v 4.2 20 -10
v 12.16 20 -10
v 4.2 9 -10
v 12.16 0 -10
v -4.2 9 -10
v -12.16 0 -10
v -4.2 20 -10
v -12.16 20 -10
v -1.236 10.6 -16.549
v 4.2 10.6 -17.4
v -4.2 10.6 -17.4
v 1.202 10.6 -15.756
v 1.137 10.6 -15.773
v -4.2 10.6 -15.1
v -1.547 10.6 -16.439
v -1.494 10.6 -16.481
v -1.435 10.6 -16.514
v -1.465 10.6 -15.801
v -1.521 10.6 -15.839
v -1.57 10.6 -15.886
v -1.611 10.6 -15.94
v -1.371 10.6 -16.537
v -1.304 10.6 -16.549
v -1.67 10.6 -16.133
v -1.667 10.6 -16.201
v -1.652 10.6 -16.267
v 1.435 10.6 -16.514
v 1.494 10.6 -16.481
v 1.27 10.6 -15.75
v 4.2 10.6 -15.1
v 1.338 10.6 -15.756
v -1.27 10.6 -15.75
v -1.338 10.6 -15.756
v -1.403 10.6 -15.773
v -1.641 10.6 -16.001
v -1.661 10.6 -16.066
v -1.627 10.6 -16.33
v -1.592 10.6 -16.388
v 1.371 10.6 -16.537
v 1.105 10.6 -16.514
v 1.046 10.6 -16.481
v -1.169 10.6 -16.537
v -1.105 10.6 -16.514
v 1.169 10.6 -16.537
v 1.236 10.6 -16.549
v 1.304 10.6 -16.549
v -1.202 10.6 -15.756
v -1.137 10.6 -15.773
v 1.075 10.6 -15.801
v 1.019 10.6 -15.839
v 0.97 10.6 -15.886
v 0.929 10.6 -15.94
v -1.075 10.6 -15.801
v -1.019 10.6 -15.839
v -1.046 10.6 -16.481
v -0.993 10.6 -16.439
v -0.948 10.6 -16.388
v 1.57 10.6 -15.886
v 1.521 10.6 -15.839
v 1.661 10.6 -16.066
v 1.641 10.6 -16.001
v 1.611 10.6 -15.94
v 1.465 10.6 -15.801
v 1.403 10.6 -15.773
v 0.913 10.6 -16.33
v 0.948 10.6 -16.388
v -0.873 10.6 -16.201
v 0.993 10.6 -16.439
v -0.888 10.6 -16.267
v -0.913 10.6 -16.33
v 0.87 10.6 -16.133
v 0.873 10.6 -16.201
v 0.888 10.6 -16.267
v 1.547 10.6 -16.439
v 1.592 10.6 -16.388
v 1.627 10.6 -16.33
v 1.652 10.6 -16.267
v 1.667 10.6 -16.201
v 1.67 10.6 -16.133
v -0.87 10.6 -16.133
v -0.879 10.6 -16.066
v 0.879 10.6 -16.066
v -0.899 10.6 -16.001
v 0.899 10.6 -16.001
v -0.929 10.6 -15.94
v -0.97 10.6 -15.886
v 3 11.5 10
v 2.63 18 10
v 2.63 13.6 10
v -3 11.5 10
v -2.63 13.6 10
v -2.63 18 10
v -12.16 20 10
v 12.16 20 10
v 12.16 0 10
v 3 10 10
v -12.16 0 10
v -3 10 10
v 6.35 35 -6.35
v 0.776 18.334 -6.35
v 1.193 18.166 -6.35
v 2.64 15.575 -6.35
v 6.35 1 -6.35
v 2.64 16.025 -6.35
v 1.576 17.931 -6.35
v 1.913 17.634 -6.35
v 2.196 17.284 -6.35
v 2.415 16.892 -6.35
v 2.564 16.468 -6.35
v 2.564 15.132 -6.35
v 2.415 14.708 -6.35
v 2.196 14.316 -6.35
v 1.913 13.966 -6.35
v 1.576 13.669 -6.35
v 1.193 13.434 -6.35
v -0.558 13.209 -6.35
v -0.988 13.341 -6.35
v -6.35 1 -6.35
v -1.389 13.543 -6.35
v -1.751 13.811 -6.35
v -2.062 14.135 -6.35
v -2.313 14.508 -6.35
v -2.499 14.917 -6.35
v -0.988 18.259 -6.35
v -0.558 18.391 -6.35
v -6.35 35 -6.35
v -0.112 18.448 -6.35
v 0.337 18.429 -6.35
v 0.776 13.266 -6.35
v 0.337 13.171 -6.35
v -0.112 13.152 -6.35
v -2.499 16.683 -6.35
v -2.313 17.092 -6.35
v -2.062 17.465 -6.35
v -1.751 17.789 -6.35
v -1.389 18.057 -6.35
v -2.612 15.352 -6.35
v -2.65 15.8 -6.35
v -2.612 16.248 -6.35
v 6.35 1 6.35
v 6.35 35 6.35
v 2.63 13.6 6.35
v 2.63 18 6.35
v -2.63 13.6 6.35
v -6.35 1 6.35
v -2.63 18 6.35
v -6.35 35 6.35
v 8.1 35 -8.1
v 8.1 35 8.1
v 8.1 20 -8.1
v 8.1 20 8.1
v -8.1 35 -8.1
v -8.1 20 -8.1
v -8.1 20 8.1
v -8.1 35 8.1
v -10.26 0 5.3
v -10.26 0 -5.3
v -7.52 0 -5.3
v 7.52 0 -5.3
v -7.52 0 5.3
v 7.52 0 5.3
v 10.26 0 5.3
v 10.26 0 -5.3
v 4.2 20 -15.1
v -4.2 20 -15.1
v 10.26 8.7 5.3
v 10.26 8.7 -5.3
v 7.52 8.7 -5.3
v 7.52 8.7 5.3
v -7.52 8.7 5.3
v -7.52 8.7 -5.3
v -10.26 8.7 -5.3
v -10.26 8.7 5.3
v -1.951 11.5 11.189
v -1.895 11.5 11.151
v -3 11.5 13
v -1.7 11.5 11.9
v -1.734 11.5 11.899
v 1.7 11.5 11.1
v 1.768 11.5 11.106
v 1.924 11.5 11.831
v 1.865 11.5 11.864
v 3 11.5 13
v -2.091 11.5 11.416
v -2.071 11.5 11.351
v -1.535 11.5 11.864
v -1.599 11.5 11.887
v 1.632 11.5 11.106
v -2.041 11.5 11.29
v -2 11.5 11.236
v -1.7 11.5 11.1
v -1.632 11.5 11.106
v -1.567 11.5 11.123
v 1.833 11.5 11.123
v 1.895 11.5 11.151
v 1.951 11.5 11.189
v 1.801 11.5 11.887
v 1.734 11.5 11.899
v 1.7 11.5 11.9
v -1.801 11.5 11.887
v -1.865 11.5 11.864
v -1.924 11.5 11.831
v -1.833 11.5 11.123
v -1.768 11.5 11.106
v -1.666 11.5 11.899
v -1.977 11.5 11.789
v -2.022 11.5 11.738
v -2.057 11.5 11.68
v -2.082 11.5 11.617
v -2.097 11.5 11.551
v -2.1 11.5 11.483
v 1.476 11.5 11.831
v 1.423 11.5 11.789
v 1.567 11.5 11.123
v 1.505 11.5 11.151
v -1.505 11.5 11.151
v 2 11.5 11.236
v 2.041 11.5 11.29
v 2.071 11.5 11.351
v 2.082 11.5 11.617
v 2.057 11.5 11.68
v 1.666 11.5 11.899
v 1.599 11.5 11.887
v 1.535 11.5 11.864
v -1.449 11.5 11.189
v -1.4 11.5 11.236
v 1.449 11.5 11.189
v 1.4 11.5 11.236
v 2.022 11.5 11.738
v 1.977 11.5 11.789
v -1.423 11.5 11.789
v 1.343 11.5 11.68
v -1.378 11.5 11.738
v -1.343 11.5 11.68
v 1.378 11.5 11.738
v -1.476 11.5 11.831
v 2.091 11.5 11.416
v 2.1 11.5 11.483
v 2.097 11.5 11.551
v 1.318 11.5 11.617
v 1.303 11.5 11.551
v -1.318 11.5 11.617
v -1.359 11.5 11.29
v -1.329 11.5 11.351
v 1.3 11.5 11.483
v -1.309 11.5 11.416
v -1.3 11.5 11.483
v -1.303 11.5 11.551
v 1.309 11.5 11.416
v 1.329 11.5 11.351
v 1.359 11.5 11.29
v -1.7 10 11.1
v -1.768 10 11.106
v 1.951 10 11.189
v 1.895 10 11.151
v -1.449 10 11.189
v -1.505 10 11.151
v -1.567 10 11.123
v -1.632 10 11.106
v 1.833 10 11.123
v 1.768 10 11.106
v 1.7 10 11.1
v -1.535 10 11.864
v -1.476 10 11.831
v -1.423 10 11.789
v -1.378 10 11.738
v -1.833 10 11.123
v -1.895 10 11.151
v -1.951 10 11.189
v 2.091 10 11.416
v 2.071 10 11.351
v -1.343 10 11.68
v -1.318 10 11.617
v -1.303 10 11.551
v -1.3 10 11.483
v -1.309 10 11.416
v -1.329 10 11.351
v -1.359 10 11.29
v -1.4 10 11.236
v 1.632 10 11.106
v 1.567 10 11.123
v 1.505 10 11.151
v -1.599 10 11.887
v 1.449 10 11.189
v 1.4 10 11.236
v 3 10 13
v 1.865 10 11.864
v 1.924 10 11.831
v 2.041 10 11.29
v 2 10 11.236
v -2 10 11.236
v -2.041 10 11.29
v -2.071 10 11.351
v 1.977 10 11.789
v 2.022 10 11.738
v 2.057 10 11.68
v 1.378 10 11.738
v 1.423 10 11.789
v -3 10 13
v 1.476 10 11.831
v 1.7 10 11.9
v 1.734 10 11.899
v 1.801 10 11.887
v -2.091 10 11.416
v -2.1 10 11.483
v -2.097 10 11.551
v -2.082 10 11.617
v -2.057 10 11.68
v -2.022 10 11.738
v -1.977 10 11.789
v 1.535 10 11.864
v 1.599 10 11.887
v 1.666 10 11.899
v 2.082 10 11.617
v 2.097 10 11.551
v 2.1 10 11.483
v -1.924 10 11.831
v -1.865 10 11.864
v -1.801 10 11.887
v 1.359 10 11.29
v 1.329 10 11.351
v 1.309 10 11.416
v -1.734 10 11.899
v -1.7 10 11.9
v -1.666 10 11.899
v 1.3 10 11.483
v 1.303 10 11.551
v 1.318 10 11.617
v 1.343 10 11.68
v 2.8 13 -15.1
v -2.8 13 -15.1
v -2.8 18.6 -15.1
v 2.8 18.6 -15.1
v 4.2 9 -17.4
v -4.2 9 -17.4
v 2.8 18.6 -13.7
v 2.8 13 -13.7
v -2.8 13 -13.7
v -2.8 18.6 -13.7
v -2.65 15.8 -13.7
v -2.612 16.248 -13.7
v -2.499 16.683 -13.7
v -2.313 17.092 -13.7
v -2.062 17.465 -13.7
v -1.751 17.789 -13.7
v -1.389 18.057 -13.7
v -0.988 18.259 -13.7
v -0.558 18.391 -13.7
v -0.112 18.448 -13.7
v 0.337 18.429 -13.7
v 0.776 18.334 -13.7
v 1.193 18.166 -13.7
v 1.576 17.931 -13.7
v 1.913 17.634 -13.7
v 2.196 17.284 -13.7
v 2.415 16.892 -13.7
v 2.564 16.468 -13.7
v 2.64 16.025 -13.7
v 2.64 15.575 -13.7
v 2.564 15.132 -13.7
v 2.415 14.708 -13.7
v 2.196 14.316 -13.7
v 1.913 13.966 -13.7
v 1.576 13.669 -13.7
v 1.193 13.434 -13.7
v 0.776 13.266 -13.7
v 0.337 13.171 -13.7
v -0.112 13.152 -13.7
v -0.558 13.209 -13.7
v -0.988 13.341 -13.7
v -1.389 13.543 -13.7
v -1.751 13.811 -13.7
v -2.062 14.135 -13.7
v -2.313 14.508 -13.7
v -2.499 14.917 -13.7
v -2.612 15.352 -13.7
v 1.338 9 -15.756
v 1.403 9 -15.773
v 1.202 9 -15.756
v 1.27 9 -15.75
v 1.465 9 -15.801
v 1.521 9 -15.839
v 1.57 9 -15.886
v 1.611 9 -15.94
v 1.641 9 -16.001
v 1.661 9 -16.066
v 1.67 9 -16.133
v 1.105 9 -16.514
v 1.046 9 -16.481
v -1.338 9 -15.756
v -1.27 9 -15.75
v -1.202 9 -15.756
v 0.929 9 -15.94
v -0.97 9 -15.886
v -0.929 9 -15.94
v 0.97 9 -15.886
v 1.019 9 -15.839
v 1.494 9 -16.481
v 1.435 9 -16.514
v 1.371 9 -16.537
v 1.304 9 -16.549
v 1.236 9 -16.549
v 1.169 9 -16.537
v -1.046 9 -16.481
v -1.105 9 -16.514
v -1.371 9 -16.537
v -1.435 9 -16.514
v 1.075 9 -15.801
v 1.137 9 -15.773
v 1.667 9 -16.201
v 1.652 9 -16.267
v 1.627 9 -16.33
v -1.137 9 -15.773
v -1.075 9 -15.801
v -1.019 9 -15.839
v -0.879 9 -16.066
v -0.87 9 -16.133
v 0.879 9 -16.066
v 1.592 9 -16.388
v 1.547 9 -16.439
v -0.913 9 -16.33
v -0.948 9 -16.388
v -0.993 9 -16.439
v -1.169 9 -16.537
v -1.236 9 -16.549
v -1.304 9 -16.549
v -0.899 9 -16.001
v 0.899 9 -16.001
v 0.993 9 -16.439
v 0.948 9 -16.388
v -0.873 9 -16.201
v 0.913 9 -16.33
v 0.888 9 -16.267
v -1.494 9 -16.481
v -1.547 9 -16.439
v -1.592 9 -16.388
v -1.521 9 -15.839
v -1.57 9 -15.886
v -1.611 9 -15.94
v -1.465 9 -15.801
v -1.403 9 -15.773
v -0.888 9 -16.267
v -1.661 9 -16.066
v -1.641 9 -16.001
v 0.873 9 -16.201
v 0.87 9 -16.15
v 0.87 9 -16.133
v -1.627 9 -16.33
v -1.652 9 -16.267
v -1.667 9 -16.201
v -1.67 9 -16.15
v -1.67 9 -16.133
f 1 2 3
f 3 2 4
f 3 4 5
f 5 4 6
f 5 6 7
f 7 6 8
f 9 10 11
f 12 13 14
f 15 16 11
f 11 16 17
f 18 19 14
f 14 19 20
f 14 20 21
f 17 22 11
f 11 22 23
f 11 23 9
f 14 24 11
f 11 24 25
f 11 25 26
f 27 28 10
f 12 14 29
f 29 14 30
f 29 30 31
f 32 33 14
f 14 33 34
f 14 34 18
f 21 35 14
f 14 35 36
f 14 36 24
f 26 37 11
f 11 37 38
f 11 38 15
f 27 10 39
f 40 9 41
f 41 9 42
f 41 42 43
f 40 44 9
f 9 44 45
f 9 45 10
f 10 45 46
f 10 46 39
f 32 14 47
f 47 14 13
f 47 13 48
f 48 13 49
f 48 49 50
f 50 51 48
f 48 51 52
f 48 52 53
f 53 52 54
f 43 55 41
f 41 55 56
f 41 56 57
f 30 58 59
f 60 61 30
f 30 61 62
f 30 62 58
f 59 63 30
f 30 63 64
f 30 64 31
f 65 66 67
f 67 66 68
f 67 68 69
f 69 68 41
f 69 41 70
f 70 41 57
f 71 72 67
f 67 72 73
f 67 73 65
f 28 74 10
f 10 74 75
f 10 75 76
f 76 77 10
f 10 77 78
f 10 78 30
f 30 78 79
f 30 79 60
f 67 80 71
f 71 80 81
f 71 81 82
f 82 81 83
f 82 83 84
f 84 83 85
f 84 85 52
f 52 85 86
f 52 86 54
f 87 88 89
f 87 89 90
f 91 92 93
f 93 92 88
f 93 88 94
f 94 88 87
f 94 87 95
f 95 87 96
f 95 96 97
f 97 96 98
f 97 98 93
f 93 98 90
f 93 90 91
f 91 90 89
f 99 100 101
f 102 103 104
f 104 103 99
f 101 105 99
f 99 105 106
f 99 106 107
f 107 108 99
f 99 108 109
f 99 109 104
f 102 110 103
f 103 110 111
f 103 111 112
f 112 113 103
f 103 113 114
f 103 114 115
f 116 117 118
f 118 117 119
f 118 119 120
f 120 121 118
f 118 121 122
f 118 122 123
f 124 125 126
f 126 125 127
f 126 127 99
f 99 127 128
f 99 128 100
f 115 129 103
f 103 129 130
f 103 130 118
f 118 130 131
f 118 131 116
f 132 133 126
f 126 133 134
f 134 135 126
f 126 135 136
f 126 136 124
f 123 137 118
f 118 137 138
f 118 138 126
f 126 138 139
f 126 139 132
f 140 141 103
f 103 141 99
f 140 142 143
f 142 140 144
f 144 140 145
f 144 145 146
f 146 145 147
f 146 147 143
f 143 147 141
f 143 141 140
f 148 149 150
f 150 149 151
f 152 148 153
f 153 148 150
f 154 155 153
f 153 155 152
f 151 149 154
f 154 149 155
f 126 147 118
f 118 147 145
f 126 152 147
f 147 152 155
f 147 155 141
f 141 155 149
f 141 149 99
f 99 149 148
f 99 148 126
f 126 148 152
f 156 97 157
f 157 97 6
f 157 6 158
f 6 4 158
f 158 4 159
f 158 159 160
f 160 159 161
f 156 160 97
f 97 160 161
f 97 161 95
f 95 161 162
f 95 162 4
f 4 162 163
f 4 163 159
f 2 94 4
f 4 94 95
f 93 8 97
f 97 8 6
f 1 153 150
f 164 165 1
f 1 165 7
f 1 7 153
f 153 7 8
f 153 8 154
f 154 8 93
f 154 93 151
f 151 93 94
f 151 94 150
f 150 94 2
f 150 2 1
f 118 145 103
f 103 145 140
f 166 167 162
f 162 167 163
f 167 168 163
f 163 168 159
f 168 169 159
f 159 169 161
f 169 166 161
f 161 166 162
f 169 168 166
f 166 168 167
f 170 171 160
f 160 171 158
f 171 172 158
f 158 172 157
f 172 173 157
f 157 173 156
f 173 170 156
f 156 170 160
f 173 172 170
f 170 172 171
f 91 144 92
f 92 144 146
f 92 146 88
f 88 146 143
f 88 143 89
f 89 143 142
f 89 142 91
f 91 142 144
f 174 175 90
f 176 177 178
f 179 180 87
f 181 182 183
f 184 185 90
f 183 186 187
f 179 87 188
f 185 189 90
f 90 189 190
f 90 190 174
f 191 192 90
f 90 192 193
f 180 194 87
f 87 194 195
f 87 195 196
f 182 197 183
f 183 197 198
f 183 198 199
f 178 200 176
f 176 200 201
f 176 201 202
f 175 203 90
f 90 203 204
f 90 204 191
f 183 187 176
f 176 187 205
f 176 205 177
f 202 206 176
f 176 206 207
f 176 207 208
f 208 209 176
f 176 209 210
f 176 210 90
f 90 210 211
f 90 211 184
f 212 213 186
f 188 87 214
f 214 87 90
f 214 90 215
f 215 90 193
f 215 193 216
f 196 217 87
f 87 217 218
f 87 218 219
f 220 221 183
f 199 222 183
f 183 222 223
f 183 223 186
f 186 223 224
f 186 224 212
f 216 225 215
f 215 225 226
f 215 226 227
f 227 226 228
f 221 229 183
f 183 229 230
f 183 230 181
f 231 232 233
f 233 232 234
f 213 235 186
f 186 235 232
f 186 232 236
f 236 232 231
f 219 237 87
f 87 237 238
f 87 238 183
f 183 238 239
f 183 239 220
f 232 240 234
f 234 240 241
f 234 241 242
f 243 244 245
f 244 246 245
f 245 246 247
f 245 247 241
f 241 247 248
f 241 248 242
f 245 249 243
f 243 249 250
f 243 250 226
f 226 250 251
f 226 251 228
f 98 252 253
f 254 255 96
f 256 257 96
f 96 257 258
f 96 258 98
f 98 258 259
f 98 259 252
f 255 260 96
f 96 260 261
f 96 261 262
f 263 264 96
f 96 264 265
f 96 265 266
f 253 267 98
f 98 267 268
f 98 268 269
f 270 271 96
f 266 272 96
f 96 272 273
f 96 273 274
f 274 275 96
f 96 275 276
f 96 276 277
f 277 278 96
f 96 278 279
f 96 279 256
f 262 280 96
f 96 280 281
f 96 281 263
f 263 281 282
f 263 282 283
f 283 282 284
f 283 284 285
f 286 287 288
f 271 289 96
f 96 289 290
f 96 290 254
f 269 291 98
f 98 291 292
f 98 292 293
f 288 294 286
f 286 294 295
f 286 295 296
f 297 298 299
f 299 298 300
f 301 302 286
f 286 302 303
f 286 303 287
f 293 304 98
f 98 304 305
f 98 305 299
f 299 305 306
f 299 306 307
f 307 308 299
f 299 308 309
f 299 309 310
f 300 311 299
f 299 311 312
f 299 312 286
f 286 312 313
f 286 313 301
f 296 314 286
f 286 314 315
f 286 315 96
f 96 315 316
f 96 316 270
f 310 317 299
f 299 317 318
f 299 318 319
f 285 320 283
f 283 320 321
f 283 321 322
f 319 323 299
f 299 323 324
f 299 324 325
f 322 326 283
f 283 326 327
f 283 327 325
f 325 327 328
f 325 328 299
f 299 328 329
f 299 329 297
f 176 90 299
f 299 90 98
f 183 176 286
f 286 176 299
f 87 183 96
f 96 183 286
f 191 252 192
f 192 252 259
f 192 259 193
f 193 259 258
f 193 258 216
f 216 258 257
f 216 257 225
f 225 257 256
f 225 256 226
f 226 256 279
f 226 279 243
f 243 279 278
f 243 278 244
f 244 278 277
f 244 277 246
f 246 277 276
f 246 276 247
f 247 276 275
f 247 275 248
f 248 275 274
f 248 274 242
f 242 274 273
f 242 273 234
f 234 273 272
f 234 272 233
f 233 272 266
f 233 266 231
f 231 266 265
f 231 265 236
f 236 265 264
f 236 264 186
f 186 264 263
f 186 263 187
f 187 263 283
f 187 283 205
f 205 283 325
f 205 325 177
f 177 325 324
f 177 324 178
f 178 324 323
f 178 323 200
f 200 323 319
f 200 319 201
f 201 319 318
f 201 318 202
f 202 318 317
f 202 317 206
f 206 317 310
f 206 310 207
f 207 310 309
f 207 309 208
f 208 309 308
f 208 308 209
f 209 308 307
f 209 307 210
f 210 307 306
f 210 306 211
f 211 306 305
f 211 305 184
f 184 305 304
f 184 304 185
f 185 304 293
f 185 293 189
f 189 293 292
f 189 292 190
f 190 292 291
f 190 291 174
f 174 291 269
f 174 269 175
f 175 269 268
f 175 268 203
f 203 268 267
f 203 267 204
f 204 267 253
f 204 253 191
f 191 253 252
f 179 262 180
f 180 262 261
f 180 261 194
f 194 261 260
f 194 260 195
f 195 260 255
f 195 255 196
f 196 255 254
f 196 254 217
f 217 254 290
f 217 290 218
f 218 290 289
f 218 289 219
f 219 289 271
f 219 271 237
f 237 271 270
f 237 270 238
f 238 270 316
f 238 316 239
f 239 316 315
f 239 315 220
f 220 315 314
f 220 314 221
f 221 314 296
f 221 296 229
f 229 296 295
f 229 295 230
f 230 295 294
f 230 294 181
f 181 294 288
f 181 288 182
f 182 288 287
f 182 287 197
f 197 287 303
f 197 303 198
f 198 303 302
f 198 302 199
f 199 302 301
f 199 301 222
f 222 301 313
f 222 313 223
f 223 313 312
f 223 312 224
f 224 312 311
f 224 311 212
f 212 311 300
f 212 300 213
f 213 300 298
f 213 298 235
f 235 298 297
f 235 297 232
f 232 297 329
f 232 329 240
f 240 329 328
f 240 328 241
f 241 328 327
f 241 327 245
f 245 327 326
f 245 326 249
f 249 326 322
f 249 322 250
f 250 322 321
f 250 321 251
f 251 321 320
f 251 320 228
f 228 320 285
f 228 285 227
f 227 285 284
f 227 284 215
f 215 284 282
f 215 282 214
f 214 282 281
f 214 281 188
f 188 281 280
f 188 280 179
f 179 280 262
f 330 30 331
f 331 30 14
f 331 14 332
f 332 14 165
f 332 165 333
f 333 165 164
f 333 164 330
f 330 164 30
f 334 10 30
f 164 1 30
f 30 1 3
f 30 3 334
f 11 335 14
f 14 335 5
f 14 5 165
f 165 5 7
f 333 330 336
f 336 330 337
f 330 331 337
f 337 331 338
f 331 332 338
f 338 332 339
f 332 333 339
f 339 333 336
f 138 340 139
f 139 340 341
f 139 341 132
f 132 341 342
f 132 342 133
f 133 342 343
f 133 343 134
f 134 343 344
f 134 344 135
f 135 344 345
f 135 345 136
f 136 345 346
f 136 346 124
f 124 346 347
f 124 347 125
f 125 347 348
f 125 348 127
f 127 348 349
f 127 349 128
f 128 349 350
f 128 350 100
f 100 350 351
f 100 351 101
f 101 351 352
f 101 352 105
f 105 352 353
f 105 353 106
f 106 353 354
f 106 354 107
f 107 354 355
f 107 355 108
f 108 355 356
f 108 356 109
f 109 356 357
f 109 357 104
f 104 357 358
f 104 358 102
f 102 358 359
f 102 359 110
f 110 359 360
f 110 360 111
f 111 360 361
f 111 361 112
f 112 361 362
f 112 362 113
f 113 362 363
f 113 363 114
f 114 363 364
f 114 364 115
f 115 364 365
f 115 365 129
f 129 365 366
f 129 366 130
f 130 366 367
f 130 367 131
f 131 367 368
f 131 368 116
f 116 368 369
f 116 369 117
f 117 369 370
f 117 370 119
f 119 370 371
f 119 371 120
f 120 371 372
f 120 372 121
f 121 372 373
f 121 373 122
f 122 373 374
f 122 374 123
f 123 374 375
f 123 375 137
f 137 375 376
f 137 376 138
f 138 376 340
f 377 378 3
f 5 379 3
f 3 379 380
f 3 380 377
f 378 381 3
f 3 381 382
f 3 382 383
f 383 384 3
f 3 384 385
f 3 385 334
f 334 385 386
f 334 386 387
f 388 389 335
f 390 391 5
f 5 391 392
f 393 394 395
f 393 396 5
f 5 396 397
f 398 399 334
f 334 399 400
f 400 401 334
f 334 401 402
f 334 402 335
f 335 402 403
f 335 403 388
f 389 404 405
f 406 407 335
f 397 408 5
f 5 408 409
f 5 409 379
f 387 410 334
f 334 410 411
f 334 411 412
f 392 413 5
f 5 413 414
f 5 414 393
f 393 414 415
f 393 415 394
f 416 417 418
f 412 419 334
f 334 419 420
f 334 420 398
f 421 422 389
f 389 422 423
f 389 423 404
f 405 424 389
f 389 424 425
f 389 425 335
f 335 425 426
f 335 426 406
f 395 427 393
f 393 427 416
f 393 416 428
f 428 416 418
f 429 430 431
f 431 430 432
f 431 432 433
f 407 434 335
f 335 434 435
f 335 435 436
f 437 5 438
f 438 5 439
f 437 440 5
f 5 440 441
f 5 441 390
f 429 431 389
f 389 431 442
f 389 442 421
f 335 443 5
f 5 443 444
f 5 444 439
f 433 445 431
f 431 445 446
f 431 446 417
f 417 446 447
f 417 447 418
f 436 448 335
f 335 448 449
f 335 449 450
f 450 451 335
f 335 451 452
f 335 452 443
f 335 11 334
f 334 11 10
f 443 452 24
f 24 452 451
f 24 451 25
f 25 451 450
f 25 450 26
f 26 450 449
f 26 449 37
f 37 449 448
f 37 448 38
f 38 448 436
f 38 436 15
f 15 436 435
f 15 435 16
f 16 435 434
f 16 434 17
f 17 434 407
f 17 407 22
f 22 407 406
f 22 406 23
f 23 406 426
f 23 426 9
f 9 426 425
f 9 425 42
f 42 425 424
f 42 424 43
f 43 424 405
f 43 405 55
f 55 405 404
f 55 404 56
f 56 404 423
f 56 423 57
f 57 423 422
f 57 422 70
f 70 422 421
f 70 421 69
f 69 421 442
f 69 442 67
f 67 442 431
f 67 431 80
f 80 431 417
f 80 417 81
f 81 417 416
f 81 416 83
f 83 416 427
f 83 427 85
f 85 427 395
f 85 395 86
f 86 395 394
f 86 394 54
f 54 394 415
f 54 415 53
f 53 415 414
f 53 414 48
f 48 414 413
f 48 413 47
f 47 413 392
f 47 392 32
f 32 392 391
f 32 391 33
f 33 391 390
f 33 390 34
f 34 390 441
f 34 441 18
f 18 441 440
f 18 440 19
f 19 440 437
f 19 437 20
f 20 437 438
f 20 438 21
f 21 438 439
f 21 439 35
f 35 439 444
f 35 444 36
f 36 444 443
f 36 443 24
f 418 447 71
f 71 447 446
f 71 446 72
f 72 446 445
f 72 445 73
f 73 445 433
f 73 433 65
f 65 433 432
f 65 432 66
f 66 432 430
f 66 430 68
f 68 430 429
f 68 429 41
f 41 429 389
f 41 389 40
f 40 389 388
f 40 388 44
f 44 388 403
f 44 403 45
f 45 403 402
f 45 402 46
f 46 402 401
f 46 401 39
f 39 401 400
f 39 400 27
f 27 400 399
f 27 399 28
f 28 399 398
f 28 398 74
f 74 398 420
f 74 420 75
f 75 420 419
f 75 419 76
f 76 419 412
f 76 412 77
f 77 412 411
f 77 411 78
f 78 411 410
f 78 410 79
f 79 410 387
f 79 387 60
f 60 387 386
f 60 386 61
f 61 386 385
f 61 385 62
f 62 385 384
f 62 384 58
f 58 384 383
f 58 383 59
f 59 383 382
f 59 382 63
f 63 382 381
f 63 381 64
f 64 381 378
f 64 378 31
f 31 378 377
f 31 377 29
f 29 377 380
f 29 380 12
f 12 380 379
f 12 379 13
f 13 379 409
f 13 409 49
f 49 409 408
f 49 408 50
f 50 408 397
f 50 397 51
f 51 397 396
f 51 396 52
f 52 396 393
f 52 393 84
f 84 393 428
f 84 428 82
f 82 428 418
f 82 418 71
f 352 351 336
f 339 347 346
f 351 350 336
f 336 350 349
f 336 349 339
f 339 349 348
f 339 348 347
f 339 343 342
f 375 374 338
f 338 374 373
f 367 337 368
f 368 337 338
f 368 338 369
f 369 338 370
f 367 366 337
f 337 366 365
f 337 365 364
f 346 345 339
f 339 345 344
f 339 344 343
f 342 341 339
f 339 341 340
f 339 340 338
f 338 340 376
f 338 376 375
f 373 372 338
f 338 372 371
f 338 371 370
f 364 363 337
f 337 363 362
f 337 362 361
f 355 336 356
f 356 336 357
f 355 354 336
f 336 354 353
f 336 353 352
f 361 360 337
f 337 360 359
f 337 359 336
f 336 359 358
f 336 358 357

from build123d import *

# Parameters (mm, degrees)
SKETCH_1_W          = 16.2
SKETCH_1_H          = 16.2
SKETCH_1_W_2        = 12.7
SKETCH_1_H_2        = 12.7
EXTRUDE_1_DEPTH     = 35
SKETCH_3_W          = 12.7
SKETCH_3_H          = 12.7
EXTRUDE_2_DEPTH     = 1
SKETCH_5_W          = 24.32
SKETCH_5_H          = 20
SKETCH_5_W_2        = 2.6
SKETCH_5_H_2        = 10.16
SKETCH_5_W_3        = 14.7
SKETCH_5_H_3        = 14.7
EXTRUDE_3_DEPTH     = 20
SKETCH_9_W          = 2.74
SKETCH_9_H          = 10.6
CUT_EXTRUDE_5_DEPTH = 8.7
CUT_EXTRUDE_6_REACH = 44.105
SKETCH_10_W         = 5.26
SKETCH_10_H         = 4.4
SKETCH_11_W         = 6
SKETCH_11_H         = 3
SKETCH_11_R         = 0.4
EXTRUDE_5_DEPTH     = 1.5
SKETCH_13_W         = 8.4
SKETCH_13_H         = 8.4
SKETCH_13_W_2       = 5.6
SKETCH_13_H_2       = 5.6
EXTRUDE_6_DEPTH     = 5.1
CUT_EXTRUDE_7_REACH = 45.61
SKETCH_15_R         = 2.65
SKETCH_16_W         = 8.4
SKETCH_16_H         = 1.6
EXTRUDE_7_DEPTH     = 7.4
CUT_EXTRUDE_8_REACH = 34.342
SKETCH_17_R         = 0.4
EXTRUDE_START       = 3.7
SKETCH_20_W         = 5.6
SKETCH_20_H         = 5.6
SKETCH_20_R         = 2.65
EXTRUDE_8_DEPTH     = 3.7
SKETCH_21_W         = 8.4
SKETCH_21_H         = 1
EXTRUDE_9_DEPTH     = 5.1


with BuildPart() as part:
    # 草圖1 → 填料-伸長1 (new body)
    with BuildSketch(Plane(origin=(0, 0, 0), x_dir=(1, 0, 0), z_dir=(0, 1, 0))):
        Rectangle(SKETCH_1_W, SKETCH_1_H)
        Rectangle(SKETCH_1_W_2, SKETCH_1_H_2, mode=Mode.SUBTRACT)
    extrude(amount=EXTRUDE_1_DEPTH)



with BuildPart() as body_2:
    # 草圖3 → 填料-伸長2 (new body)
    with BuildSketch(Plane(origin=(0, 0, 0), x_dir=(1, 0, 0), z_dir=(0, 1, 0))):
        Rectangle(SKETCH_3_W, SKETCH_3_H)
    extrude(amount=EXTRUDE_2_DEPTH)


with BuildPart() as part_1:
    add(part.part)

    add(body_2.part)  # 填料-伸長3 merges body 2
    # 草圖5 → 填料-伸長3 (add)
    # profile 1 of 3: a face of its own
    with BuildSketch(Plane(origin=(0, 0, 0), x_dir=(1, 0, 0), z_dir=(0, 1, 0))):
        Rectangle(SKETCH_5_W, SKETCH_5_H)
        with Locations((-9.16, 0)):
            Rectangle(SKETCH_5_W_2, SKETCH_5_H_2, mode=Mode.SUBTRACT)
        Rectangle(SKETCH_5_W_3, SKETCH_5_H_3, mode=Mode.SUBTRACT)
        with Locations((9.16, 0)):
            Rectangle(SKETCH_5_W_2, SKETCH_5_H_2, mode=Mode.SUBTRACT)
    # profile 2 of 3: a face of its own
    with BuildSketch(Plane(origin=(0, 0, 0), x_dir=(1, 0, 0), z_dir=(0, 1, 0))):
        with Locations((-9.16, 0)):
            Rectangle(SKETCH_5_W_2, SKETCH_5_H_2)
    # profile 3 of 3: a face of its own
    with BuildSketch(Plane(origin=(0, 0, 0), x_dir=(1, 0, 0), z_dir=(0, 1, 0))):
        with Locations((9.16, 0)):
            Rectangle(SKETCH_5_W_2, SKETCH_5_H_2)
    extrude(amount=EXTRUDE_3_DEPTH)

    # 草圖9 → 除料-伸長5 (cut)
    with BuildSketch(Plane(origin=(0, 0, 0), x_dir=(1, 0, 0), z_dir=(0, 1, 0))):
        with Locations((-8.89, 0)):
            Rectangle(SKETCH_9_W, SKETCH_9_H)
        with Locations((8.89, 0)):
            Rectangle(SKETCH_9_W, SKETCH_9_H)
    extrude(amount=CUT_EXTRUDE_5_DEPTH, mode=Mode.SUBTRACT)

    # 草圖10 → 除料-伸長6 (cut, up to next)
    with BuildSketch(Plane.XY.offset(10), mode=Mode.PRIVATE) as cut_extrude_6_sk1:
        with Locations((0, 15.8)):
            Rectangle(SKETCH_10_W, SKETCH_10_H)
    cut_extrude_6_tool1 = extrude(cut_extrude_6_sk1.sketch, amount=-CUT_EXTRUDE_6_REACH, mode=Mode.PRIVATE) & part_1.part
    add(cut_extrude_6_tool1.solids().sort_by_distance((0, 15.8, 10))[0], mode=Mode.SUBTRACT)

    # 草圖11 → 填料-伸長5 (add)
    with BuildSketch(Plane(origin=(0, 10, 0), x_dir=(1, 0, 0), z_dir=(0, 1, 0))):
        with Locations((0, -11.5)):
            Rectangle(SKETCH_11_W, SKETCH_11_H)
        with Locations(Location((-1.7, -11.5, 0), (0, 0, 270))):
            Circle(SKETCH_11_R, mode=Mode.SUBTRACT)
        with Locations(Location((1.7, -11.5, 0), (0, 0, 270))):
            Circle(SKETCH_11_R, mode=Mode.SUBTRACT)
    extrude(amount=EXTRUDE_5_DEPTH)

    # 草圖13 → 填料-伸長6 (add)
    with BuildSketch(Plane(origin=(0, 0, -10), x_dir=(-1, 0, 0), z_dir=(0, 0, -1))):
        with Locations((0, 15.8)):
            Rectangle(SKETCH_13_W, SKETCH_13_H)
        with Locations((0, 15.8)):
            Rectangle(SKETCH_13_W_2, SKETCH_13_H_2, mode=Mode.SUBTRACT)
    extrude(amount=EXTRUDE_6_DEPTH)

    # 草圖15 → 除料-伸長7 (cut, up to next)
    with BuildSketch(Plane(origin=(0, 0, -10), x_dir=(-1, 0, 0), z_dir=(0, 0, -1)), mode=Mode.PRIVATE) as cut_extrude_7_sk1:
        with Locations((0, 15.8)):
            Circle(SKETCH_15_R)
    cut_extrude_7_tool1 = extrude(cut_extrude_7_sk1.sketch, amount=-CUT_EXTRUDE_7_REACH, mode=Mode.PRIVATE) & part_1.part
    add(cut_extrude_7_tool1.solids().sort_by_distance((0, 15.8, -10))[0], mode=Mode.SUBTRACT)

    # 草圖16 → 填料-伸長7 (add)
    with BuildSketch(Plane(origin=(0, 0, -10), x_dir=(-1, 0, 0), z_dir=(0, 0, -1))):
        with Locations((0, 9.8)):
            Rectangle(SKETCH_16_W, SKETCH_16_H)
    extrude(amount=EXTRUDE_7_DEPTH)

    # 草圖17 → 除料-伸長8 (cut, up to next)
    with BuildSketch(Plane(origin=(0, 10.6, 0), x_dir=(1, 0, 0), z_dir=(0, 1, 0)), mode=Mode.PRIVATE) as cut_extrude_8_sk1:
        with Locations(Location((1.27, 16.15, 0), (0, 0, 270))):
            Circle(SKETCH_17_R)
    cut_extrude_8_tool1 = extrude(cut_extrude_8_sk1.sketch, amount=-CUT_EXTRUDE_8_REACH, mode=Mode.PRIVATE) & part_1.part
    # 草圖17 → 除料-伸長8 (cut, up to next)
    with BuildSketch(Plane(origin=(0, 10.6, 0), x_dir=(1, 0, 0), z_dir=(0, 1, 0)), mode=Mode.PRIVATE) as cut_extrude_8_sk2:
        with Locations(Location((-1.27, 16.15, 0), (0, 0, 270))):
            Circle(SKETCH_17_R)
    cut_extrude_8_tool2 = extrude(cut_extrude_8_sk2.sketch, amount=-CUT_EXTRUDE_8_REACH, mode=Mode.PRIVATE) & part_1.part
    add(cut_extrude_8_tool1.solids().sort_by_distance((1.27, 10.6, -16.15))[0], mode=Mode.SUBTRACT)
    add(cut_extrude_8_tool2.solids().sort_by_distance((-1.27, 10.6, -16.15))[0], mode=Mode.SUBTRACT)

    # 草圖20 → 填料-伸長8 (add)
    with BuildSketch(Plane(origin=(0, 0, -10), x_dir=(-1, 0, 0), z_dir=(0, 0, -1)).offset(EXTRUDE_START)):
        with Locations((0, 15.8)):
            Rectangle(SKETCH_20_W, SKETCH_20_H)
        with Locations((0, 15.8)):
            Circle(SKETCH_20_R, mode=Mode.SUBTRACT)
    extrude(amount=-EXTRUDE_8_DEPTH)

    # 草圖21 → 填料-伸長9 (add)
    with BuildSketch(Plane(origin=(0, 0, -10), x_dir=(-1, 0, 0), z_dir=(0, 0, -1))):
        with Locations((0, 11.1)):
            Rectangle(SKETCH_21_W, SKETCH_21_H)
    extrude(amount=EXTRUDE_9_DEPTH)


solid = part_1.part
